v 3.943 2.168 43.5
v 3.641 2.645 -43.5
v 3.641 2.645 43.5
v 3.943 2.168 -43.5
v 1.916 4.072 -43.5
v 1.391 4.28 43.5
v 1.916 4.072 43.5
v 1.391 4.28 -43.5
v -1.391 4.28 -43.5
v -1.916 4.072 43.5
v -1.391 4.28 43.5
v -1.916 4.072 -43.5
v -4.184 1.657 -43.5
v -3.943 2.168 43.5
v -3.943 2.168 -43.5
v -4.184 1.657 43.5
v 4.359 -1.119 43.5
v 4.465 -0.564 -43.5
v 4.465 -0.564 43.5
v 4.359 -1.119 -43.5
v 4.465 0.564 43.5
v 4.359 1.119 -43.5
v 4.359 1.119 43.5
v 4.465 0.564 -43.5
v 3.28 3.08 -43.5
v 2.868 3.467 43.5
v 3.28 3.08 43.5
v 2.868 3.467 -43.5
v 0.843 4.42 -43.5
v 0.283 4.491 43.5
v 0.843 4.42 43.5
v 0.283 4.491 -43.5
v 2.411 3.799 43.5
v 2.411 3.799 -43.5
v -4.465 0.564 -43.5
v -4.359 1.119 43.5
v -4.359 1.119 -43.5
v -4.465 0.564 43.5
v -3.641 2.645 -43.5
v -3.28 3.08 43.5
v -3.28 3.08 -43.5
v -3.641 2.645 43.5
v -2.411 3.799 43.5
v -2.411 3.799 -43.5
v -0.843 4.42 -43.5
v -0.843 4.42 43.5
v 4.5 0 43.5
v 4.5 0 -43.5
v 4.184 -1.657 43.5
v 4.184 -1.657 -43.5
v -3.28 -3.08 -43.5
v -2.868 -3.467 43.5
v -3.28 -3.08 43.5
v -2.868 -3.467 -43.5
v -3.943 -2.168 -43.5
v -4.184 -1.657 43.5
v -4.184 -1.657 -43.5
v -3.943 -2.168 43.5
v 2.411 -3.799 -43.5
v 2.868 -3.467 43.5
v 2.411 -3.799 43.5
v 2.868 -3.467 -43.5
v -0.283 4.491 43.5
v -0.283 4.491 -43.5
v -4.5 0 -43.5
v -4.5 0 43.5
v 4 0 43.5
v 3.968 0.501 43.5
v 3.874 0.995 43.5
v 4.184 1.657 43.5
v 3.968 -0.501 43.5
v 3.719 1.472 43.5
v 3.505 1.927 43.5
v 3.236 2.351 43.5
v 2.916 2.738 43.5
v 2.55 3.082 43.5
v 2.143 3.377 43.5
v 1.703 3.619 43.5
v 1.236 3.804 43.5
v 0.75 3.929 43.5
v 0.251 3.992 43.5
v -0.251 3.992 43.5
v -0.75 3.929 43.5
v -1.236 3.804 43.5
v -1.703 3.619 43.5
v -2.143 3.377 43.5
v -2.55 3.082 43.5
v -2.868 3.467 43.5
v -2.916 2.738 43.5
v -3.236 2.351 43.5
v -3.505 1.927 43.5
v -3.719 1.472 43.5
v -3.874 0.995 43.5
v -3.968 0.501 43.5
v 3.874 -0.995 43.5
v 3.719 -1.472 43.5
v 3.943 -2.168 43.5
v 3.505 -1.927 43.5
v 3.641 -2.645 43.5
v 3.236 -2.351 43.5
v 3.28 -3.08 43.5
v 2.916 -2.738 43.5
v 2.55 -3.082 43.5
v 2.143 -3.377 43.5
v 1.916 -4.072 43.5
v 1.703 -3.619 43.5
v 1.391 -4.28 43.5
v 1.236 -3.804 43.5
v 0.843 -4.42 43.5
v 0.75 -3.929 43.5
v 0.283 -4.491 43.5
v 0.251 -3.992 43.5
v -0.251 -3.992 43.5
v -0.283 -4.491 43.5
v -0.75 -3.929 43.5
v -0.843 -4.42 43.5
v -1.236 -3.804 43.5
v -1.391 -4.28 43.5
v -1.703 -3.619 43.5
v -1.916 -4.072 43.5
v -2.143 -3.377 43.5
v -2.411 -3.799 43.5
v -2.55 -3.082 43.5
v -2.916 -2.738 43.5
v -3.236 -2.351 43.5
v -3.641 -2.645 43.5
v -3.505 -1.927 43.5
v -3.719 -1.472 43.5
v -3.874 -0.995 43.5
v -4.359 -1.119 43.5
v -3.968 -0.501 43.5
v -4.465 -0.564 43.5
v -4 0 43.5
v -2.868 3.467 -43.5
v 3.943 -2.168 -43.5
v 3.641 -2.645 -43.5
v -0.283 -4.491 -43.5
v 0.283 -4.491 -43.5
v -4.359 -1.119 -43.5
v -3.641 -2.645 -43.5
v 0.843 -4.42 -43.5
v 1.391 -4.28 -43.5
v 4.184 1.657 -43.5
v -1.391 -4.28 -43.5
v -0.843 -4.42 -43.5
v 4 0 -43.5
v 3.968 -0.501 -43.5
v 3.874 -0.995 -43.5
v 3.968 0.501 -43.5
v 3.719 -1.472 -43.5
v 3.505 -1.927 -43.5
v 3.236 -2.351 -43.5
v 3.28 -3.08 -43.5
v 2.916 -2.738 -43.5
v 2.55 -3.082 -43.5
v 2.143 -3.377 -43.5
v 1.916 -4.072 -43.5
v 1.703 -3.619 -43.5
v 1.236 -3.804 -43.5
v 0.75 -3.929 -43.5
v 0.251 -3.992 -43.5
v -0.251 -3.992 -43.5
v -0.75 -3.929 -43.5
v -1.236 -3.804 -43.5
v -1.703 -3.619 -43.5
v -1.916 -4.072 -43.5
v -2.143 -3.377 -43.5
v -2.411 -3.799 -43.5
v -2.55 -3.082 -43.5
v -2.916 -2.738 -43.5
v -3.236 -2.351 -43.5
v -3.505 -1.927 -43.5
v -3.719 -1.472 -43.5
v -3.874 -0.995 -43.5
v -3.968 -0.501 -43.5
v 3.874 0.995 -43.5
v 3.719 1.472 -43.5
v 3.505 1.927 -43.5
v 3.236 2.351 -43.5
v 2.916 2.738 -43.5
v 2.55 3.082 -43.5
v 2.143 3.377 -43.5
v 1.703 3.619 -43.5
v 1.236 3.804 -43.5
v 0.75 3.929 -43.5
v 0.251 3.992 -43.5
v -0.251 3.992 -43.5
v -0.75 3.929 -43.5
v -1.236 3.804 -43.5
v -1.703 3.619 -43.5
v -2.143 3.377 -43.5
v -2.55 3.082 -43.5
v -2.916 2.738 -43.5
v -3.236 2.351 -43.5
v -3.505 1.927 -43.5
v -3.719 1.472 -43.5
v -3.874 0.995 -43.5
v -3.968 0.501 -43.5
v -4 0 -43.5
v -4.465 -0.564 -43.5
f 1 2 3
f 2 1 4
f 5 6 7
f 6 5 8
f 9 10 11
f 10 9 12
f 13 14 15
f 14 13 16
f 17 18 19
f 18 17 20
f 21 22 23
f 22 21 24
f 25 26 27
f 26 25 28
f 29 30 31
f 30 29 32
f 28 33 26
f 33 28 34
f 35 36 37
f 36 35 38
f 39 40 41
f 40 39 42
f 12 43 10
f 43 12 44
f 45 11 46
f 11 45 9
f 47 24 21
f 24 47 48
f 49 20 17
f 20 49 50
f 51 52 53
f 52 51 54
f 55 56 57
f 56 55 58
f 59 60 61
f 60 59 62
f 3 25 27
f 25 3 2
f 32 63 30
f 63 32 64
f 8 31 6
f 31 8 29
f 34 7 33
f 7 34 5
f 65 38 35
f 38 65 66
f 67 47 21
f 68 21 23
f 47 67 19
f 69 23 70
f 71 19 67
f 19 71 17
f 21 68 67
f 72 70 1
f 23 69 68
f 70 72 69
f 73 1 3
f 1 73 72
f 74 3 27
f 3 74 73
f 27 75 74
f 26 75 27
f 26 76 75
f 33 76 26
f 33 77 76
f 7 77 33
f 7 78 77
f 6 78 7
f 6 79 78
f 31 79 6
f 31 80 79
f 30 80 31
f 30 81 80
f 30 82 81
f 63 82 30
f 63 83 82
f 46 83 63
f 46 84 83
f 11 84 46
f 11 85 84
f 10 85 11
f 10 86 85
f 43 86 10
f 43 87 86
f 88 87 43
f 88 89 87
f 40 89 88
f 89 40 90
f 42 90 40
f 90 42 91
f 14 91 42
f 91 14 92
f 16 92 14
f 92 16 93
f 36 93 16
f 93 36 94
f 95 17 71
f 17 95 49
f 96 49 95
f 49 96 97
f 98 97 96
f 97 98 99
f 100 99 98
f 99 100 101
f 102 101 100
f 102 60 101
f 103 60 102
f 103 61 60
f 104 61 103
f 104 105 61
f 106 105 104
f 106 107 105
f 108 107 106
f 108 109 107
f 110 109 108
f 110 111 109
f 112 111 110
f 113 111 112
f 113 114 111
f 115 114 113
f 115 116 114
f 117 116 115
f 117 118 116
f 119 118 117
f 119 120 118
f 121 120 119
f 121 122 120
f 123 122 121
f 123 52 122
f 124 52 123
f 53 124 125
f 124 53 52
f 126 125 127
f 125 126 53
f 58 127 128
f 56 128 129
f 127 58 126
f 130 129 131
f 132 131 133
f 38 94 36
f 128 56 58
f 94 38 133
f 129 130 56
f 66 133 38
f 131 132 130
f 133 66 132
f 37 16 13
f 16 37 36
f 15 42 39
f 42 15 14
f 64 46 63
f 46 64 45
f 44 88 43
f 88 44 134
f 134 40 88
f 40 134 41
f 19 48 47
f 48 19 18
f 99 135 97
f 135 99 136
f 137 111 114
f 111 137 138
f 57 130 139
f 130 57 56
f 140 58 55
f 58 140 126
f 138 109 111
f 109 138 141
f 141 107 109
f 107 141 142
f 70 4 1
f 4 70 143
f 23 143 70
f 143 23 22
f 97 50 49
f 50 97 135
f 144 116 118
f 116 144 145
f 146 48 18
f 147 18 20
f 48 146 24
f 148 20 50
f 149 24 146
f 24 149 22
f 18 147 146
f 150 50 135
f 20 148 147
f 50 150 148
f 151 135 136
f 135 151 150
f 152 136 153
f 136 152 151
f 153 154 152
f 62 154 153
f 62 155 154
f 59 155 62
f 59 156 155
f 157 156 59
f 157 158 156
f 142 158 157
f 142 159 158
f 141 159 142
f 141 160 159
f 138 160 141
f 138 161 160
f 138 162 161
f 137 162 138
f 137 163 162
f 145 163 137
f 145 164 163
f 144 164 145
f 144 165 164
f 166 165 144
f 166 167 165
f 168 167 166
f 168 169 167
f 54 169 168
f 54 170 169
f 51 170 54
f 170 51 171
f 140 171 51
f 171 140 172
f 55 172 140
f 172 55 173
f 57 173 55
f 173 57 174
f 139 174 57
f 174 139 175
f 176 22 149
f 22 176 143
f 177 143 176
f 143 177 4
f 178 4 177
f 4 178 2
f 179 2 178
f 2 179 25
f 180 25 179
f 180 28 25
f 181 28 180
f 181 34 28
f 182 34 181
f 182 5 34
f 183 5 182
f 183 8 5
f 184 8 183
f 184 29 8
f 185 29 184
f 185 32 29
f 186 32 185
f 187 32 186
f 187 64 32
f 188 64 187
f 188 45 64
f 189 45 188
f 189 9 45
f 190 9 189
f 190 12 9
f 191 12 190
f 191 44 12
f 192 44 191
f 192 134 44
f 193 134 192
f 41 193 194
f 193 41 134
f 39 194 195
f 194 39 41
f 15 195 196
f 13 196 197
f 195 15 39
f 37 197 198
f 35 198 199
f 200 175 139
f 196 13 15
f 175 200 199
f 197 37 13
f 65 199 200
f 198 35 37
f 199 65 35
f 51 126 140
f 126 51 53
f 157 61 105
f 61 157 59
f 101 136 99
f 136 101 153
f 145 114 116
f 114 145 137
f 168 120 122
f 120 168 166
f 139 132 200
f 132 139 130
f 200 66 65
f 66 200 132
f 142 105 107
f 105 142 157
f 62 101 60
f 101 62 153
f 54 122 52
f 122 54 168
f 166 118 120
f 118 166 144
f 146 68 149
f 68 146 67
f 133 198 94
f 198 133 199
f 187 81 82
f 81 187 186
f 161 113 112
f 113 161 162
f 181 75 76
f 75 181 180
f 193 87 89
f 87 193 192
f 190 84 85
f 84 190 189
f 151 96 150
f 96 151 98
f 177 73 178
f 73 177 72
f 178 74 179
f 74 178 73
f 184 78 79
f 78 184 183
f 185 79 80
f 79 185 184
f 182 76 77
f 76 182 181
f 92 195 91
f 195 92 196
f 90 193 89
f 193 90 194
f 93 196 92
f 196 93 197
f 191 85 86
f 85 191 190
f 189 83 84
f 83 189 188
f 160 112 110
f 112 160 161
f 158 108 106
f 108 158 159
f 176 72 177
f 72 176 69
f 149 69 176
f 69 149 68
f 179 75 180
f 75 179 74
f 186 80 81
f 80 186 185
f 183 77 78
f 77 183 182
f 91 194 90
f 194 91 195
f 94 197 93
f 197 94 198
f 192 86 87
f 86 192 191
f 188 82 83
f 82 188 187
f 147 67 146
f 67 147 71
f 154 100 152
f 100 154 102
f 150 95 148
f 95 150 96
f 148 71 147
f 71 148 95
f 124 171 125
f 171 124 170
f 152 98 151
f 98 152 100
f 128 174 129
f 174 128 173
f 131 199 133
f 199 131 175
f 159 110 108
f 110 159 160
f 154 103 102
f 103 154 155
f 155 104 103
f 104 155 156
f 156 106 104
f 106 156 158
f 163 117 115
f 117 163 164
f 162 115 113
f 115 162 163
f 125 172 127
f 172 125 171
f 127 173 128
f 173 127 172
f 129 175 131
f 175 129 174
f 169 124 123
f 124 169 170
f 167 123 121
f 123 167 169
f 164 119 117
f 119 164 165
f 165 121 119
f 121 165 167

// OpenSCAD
$fn = 50;


difference() {
	union() {
		translate(v = [0, 0, -43.5000000000]) {
			cylinder(h = 87, r = 4.5000000000);
		}
	}
	union() {
		translate(v = [0, 0, -100.0000000000]) {
			cylinder(h = 200, r = 4);
		}
	}
}
